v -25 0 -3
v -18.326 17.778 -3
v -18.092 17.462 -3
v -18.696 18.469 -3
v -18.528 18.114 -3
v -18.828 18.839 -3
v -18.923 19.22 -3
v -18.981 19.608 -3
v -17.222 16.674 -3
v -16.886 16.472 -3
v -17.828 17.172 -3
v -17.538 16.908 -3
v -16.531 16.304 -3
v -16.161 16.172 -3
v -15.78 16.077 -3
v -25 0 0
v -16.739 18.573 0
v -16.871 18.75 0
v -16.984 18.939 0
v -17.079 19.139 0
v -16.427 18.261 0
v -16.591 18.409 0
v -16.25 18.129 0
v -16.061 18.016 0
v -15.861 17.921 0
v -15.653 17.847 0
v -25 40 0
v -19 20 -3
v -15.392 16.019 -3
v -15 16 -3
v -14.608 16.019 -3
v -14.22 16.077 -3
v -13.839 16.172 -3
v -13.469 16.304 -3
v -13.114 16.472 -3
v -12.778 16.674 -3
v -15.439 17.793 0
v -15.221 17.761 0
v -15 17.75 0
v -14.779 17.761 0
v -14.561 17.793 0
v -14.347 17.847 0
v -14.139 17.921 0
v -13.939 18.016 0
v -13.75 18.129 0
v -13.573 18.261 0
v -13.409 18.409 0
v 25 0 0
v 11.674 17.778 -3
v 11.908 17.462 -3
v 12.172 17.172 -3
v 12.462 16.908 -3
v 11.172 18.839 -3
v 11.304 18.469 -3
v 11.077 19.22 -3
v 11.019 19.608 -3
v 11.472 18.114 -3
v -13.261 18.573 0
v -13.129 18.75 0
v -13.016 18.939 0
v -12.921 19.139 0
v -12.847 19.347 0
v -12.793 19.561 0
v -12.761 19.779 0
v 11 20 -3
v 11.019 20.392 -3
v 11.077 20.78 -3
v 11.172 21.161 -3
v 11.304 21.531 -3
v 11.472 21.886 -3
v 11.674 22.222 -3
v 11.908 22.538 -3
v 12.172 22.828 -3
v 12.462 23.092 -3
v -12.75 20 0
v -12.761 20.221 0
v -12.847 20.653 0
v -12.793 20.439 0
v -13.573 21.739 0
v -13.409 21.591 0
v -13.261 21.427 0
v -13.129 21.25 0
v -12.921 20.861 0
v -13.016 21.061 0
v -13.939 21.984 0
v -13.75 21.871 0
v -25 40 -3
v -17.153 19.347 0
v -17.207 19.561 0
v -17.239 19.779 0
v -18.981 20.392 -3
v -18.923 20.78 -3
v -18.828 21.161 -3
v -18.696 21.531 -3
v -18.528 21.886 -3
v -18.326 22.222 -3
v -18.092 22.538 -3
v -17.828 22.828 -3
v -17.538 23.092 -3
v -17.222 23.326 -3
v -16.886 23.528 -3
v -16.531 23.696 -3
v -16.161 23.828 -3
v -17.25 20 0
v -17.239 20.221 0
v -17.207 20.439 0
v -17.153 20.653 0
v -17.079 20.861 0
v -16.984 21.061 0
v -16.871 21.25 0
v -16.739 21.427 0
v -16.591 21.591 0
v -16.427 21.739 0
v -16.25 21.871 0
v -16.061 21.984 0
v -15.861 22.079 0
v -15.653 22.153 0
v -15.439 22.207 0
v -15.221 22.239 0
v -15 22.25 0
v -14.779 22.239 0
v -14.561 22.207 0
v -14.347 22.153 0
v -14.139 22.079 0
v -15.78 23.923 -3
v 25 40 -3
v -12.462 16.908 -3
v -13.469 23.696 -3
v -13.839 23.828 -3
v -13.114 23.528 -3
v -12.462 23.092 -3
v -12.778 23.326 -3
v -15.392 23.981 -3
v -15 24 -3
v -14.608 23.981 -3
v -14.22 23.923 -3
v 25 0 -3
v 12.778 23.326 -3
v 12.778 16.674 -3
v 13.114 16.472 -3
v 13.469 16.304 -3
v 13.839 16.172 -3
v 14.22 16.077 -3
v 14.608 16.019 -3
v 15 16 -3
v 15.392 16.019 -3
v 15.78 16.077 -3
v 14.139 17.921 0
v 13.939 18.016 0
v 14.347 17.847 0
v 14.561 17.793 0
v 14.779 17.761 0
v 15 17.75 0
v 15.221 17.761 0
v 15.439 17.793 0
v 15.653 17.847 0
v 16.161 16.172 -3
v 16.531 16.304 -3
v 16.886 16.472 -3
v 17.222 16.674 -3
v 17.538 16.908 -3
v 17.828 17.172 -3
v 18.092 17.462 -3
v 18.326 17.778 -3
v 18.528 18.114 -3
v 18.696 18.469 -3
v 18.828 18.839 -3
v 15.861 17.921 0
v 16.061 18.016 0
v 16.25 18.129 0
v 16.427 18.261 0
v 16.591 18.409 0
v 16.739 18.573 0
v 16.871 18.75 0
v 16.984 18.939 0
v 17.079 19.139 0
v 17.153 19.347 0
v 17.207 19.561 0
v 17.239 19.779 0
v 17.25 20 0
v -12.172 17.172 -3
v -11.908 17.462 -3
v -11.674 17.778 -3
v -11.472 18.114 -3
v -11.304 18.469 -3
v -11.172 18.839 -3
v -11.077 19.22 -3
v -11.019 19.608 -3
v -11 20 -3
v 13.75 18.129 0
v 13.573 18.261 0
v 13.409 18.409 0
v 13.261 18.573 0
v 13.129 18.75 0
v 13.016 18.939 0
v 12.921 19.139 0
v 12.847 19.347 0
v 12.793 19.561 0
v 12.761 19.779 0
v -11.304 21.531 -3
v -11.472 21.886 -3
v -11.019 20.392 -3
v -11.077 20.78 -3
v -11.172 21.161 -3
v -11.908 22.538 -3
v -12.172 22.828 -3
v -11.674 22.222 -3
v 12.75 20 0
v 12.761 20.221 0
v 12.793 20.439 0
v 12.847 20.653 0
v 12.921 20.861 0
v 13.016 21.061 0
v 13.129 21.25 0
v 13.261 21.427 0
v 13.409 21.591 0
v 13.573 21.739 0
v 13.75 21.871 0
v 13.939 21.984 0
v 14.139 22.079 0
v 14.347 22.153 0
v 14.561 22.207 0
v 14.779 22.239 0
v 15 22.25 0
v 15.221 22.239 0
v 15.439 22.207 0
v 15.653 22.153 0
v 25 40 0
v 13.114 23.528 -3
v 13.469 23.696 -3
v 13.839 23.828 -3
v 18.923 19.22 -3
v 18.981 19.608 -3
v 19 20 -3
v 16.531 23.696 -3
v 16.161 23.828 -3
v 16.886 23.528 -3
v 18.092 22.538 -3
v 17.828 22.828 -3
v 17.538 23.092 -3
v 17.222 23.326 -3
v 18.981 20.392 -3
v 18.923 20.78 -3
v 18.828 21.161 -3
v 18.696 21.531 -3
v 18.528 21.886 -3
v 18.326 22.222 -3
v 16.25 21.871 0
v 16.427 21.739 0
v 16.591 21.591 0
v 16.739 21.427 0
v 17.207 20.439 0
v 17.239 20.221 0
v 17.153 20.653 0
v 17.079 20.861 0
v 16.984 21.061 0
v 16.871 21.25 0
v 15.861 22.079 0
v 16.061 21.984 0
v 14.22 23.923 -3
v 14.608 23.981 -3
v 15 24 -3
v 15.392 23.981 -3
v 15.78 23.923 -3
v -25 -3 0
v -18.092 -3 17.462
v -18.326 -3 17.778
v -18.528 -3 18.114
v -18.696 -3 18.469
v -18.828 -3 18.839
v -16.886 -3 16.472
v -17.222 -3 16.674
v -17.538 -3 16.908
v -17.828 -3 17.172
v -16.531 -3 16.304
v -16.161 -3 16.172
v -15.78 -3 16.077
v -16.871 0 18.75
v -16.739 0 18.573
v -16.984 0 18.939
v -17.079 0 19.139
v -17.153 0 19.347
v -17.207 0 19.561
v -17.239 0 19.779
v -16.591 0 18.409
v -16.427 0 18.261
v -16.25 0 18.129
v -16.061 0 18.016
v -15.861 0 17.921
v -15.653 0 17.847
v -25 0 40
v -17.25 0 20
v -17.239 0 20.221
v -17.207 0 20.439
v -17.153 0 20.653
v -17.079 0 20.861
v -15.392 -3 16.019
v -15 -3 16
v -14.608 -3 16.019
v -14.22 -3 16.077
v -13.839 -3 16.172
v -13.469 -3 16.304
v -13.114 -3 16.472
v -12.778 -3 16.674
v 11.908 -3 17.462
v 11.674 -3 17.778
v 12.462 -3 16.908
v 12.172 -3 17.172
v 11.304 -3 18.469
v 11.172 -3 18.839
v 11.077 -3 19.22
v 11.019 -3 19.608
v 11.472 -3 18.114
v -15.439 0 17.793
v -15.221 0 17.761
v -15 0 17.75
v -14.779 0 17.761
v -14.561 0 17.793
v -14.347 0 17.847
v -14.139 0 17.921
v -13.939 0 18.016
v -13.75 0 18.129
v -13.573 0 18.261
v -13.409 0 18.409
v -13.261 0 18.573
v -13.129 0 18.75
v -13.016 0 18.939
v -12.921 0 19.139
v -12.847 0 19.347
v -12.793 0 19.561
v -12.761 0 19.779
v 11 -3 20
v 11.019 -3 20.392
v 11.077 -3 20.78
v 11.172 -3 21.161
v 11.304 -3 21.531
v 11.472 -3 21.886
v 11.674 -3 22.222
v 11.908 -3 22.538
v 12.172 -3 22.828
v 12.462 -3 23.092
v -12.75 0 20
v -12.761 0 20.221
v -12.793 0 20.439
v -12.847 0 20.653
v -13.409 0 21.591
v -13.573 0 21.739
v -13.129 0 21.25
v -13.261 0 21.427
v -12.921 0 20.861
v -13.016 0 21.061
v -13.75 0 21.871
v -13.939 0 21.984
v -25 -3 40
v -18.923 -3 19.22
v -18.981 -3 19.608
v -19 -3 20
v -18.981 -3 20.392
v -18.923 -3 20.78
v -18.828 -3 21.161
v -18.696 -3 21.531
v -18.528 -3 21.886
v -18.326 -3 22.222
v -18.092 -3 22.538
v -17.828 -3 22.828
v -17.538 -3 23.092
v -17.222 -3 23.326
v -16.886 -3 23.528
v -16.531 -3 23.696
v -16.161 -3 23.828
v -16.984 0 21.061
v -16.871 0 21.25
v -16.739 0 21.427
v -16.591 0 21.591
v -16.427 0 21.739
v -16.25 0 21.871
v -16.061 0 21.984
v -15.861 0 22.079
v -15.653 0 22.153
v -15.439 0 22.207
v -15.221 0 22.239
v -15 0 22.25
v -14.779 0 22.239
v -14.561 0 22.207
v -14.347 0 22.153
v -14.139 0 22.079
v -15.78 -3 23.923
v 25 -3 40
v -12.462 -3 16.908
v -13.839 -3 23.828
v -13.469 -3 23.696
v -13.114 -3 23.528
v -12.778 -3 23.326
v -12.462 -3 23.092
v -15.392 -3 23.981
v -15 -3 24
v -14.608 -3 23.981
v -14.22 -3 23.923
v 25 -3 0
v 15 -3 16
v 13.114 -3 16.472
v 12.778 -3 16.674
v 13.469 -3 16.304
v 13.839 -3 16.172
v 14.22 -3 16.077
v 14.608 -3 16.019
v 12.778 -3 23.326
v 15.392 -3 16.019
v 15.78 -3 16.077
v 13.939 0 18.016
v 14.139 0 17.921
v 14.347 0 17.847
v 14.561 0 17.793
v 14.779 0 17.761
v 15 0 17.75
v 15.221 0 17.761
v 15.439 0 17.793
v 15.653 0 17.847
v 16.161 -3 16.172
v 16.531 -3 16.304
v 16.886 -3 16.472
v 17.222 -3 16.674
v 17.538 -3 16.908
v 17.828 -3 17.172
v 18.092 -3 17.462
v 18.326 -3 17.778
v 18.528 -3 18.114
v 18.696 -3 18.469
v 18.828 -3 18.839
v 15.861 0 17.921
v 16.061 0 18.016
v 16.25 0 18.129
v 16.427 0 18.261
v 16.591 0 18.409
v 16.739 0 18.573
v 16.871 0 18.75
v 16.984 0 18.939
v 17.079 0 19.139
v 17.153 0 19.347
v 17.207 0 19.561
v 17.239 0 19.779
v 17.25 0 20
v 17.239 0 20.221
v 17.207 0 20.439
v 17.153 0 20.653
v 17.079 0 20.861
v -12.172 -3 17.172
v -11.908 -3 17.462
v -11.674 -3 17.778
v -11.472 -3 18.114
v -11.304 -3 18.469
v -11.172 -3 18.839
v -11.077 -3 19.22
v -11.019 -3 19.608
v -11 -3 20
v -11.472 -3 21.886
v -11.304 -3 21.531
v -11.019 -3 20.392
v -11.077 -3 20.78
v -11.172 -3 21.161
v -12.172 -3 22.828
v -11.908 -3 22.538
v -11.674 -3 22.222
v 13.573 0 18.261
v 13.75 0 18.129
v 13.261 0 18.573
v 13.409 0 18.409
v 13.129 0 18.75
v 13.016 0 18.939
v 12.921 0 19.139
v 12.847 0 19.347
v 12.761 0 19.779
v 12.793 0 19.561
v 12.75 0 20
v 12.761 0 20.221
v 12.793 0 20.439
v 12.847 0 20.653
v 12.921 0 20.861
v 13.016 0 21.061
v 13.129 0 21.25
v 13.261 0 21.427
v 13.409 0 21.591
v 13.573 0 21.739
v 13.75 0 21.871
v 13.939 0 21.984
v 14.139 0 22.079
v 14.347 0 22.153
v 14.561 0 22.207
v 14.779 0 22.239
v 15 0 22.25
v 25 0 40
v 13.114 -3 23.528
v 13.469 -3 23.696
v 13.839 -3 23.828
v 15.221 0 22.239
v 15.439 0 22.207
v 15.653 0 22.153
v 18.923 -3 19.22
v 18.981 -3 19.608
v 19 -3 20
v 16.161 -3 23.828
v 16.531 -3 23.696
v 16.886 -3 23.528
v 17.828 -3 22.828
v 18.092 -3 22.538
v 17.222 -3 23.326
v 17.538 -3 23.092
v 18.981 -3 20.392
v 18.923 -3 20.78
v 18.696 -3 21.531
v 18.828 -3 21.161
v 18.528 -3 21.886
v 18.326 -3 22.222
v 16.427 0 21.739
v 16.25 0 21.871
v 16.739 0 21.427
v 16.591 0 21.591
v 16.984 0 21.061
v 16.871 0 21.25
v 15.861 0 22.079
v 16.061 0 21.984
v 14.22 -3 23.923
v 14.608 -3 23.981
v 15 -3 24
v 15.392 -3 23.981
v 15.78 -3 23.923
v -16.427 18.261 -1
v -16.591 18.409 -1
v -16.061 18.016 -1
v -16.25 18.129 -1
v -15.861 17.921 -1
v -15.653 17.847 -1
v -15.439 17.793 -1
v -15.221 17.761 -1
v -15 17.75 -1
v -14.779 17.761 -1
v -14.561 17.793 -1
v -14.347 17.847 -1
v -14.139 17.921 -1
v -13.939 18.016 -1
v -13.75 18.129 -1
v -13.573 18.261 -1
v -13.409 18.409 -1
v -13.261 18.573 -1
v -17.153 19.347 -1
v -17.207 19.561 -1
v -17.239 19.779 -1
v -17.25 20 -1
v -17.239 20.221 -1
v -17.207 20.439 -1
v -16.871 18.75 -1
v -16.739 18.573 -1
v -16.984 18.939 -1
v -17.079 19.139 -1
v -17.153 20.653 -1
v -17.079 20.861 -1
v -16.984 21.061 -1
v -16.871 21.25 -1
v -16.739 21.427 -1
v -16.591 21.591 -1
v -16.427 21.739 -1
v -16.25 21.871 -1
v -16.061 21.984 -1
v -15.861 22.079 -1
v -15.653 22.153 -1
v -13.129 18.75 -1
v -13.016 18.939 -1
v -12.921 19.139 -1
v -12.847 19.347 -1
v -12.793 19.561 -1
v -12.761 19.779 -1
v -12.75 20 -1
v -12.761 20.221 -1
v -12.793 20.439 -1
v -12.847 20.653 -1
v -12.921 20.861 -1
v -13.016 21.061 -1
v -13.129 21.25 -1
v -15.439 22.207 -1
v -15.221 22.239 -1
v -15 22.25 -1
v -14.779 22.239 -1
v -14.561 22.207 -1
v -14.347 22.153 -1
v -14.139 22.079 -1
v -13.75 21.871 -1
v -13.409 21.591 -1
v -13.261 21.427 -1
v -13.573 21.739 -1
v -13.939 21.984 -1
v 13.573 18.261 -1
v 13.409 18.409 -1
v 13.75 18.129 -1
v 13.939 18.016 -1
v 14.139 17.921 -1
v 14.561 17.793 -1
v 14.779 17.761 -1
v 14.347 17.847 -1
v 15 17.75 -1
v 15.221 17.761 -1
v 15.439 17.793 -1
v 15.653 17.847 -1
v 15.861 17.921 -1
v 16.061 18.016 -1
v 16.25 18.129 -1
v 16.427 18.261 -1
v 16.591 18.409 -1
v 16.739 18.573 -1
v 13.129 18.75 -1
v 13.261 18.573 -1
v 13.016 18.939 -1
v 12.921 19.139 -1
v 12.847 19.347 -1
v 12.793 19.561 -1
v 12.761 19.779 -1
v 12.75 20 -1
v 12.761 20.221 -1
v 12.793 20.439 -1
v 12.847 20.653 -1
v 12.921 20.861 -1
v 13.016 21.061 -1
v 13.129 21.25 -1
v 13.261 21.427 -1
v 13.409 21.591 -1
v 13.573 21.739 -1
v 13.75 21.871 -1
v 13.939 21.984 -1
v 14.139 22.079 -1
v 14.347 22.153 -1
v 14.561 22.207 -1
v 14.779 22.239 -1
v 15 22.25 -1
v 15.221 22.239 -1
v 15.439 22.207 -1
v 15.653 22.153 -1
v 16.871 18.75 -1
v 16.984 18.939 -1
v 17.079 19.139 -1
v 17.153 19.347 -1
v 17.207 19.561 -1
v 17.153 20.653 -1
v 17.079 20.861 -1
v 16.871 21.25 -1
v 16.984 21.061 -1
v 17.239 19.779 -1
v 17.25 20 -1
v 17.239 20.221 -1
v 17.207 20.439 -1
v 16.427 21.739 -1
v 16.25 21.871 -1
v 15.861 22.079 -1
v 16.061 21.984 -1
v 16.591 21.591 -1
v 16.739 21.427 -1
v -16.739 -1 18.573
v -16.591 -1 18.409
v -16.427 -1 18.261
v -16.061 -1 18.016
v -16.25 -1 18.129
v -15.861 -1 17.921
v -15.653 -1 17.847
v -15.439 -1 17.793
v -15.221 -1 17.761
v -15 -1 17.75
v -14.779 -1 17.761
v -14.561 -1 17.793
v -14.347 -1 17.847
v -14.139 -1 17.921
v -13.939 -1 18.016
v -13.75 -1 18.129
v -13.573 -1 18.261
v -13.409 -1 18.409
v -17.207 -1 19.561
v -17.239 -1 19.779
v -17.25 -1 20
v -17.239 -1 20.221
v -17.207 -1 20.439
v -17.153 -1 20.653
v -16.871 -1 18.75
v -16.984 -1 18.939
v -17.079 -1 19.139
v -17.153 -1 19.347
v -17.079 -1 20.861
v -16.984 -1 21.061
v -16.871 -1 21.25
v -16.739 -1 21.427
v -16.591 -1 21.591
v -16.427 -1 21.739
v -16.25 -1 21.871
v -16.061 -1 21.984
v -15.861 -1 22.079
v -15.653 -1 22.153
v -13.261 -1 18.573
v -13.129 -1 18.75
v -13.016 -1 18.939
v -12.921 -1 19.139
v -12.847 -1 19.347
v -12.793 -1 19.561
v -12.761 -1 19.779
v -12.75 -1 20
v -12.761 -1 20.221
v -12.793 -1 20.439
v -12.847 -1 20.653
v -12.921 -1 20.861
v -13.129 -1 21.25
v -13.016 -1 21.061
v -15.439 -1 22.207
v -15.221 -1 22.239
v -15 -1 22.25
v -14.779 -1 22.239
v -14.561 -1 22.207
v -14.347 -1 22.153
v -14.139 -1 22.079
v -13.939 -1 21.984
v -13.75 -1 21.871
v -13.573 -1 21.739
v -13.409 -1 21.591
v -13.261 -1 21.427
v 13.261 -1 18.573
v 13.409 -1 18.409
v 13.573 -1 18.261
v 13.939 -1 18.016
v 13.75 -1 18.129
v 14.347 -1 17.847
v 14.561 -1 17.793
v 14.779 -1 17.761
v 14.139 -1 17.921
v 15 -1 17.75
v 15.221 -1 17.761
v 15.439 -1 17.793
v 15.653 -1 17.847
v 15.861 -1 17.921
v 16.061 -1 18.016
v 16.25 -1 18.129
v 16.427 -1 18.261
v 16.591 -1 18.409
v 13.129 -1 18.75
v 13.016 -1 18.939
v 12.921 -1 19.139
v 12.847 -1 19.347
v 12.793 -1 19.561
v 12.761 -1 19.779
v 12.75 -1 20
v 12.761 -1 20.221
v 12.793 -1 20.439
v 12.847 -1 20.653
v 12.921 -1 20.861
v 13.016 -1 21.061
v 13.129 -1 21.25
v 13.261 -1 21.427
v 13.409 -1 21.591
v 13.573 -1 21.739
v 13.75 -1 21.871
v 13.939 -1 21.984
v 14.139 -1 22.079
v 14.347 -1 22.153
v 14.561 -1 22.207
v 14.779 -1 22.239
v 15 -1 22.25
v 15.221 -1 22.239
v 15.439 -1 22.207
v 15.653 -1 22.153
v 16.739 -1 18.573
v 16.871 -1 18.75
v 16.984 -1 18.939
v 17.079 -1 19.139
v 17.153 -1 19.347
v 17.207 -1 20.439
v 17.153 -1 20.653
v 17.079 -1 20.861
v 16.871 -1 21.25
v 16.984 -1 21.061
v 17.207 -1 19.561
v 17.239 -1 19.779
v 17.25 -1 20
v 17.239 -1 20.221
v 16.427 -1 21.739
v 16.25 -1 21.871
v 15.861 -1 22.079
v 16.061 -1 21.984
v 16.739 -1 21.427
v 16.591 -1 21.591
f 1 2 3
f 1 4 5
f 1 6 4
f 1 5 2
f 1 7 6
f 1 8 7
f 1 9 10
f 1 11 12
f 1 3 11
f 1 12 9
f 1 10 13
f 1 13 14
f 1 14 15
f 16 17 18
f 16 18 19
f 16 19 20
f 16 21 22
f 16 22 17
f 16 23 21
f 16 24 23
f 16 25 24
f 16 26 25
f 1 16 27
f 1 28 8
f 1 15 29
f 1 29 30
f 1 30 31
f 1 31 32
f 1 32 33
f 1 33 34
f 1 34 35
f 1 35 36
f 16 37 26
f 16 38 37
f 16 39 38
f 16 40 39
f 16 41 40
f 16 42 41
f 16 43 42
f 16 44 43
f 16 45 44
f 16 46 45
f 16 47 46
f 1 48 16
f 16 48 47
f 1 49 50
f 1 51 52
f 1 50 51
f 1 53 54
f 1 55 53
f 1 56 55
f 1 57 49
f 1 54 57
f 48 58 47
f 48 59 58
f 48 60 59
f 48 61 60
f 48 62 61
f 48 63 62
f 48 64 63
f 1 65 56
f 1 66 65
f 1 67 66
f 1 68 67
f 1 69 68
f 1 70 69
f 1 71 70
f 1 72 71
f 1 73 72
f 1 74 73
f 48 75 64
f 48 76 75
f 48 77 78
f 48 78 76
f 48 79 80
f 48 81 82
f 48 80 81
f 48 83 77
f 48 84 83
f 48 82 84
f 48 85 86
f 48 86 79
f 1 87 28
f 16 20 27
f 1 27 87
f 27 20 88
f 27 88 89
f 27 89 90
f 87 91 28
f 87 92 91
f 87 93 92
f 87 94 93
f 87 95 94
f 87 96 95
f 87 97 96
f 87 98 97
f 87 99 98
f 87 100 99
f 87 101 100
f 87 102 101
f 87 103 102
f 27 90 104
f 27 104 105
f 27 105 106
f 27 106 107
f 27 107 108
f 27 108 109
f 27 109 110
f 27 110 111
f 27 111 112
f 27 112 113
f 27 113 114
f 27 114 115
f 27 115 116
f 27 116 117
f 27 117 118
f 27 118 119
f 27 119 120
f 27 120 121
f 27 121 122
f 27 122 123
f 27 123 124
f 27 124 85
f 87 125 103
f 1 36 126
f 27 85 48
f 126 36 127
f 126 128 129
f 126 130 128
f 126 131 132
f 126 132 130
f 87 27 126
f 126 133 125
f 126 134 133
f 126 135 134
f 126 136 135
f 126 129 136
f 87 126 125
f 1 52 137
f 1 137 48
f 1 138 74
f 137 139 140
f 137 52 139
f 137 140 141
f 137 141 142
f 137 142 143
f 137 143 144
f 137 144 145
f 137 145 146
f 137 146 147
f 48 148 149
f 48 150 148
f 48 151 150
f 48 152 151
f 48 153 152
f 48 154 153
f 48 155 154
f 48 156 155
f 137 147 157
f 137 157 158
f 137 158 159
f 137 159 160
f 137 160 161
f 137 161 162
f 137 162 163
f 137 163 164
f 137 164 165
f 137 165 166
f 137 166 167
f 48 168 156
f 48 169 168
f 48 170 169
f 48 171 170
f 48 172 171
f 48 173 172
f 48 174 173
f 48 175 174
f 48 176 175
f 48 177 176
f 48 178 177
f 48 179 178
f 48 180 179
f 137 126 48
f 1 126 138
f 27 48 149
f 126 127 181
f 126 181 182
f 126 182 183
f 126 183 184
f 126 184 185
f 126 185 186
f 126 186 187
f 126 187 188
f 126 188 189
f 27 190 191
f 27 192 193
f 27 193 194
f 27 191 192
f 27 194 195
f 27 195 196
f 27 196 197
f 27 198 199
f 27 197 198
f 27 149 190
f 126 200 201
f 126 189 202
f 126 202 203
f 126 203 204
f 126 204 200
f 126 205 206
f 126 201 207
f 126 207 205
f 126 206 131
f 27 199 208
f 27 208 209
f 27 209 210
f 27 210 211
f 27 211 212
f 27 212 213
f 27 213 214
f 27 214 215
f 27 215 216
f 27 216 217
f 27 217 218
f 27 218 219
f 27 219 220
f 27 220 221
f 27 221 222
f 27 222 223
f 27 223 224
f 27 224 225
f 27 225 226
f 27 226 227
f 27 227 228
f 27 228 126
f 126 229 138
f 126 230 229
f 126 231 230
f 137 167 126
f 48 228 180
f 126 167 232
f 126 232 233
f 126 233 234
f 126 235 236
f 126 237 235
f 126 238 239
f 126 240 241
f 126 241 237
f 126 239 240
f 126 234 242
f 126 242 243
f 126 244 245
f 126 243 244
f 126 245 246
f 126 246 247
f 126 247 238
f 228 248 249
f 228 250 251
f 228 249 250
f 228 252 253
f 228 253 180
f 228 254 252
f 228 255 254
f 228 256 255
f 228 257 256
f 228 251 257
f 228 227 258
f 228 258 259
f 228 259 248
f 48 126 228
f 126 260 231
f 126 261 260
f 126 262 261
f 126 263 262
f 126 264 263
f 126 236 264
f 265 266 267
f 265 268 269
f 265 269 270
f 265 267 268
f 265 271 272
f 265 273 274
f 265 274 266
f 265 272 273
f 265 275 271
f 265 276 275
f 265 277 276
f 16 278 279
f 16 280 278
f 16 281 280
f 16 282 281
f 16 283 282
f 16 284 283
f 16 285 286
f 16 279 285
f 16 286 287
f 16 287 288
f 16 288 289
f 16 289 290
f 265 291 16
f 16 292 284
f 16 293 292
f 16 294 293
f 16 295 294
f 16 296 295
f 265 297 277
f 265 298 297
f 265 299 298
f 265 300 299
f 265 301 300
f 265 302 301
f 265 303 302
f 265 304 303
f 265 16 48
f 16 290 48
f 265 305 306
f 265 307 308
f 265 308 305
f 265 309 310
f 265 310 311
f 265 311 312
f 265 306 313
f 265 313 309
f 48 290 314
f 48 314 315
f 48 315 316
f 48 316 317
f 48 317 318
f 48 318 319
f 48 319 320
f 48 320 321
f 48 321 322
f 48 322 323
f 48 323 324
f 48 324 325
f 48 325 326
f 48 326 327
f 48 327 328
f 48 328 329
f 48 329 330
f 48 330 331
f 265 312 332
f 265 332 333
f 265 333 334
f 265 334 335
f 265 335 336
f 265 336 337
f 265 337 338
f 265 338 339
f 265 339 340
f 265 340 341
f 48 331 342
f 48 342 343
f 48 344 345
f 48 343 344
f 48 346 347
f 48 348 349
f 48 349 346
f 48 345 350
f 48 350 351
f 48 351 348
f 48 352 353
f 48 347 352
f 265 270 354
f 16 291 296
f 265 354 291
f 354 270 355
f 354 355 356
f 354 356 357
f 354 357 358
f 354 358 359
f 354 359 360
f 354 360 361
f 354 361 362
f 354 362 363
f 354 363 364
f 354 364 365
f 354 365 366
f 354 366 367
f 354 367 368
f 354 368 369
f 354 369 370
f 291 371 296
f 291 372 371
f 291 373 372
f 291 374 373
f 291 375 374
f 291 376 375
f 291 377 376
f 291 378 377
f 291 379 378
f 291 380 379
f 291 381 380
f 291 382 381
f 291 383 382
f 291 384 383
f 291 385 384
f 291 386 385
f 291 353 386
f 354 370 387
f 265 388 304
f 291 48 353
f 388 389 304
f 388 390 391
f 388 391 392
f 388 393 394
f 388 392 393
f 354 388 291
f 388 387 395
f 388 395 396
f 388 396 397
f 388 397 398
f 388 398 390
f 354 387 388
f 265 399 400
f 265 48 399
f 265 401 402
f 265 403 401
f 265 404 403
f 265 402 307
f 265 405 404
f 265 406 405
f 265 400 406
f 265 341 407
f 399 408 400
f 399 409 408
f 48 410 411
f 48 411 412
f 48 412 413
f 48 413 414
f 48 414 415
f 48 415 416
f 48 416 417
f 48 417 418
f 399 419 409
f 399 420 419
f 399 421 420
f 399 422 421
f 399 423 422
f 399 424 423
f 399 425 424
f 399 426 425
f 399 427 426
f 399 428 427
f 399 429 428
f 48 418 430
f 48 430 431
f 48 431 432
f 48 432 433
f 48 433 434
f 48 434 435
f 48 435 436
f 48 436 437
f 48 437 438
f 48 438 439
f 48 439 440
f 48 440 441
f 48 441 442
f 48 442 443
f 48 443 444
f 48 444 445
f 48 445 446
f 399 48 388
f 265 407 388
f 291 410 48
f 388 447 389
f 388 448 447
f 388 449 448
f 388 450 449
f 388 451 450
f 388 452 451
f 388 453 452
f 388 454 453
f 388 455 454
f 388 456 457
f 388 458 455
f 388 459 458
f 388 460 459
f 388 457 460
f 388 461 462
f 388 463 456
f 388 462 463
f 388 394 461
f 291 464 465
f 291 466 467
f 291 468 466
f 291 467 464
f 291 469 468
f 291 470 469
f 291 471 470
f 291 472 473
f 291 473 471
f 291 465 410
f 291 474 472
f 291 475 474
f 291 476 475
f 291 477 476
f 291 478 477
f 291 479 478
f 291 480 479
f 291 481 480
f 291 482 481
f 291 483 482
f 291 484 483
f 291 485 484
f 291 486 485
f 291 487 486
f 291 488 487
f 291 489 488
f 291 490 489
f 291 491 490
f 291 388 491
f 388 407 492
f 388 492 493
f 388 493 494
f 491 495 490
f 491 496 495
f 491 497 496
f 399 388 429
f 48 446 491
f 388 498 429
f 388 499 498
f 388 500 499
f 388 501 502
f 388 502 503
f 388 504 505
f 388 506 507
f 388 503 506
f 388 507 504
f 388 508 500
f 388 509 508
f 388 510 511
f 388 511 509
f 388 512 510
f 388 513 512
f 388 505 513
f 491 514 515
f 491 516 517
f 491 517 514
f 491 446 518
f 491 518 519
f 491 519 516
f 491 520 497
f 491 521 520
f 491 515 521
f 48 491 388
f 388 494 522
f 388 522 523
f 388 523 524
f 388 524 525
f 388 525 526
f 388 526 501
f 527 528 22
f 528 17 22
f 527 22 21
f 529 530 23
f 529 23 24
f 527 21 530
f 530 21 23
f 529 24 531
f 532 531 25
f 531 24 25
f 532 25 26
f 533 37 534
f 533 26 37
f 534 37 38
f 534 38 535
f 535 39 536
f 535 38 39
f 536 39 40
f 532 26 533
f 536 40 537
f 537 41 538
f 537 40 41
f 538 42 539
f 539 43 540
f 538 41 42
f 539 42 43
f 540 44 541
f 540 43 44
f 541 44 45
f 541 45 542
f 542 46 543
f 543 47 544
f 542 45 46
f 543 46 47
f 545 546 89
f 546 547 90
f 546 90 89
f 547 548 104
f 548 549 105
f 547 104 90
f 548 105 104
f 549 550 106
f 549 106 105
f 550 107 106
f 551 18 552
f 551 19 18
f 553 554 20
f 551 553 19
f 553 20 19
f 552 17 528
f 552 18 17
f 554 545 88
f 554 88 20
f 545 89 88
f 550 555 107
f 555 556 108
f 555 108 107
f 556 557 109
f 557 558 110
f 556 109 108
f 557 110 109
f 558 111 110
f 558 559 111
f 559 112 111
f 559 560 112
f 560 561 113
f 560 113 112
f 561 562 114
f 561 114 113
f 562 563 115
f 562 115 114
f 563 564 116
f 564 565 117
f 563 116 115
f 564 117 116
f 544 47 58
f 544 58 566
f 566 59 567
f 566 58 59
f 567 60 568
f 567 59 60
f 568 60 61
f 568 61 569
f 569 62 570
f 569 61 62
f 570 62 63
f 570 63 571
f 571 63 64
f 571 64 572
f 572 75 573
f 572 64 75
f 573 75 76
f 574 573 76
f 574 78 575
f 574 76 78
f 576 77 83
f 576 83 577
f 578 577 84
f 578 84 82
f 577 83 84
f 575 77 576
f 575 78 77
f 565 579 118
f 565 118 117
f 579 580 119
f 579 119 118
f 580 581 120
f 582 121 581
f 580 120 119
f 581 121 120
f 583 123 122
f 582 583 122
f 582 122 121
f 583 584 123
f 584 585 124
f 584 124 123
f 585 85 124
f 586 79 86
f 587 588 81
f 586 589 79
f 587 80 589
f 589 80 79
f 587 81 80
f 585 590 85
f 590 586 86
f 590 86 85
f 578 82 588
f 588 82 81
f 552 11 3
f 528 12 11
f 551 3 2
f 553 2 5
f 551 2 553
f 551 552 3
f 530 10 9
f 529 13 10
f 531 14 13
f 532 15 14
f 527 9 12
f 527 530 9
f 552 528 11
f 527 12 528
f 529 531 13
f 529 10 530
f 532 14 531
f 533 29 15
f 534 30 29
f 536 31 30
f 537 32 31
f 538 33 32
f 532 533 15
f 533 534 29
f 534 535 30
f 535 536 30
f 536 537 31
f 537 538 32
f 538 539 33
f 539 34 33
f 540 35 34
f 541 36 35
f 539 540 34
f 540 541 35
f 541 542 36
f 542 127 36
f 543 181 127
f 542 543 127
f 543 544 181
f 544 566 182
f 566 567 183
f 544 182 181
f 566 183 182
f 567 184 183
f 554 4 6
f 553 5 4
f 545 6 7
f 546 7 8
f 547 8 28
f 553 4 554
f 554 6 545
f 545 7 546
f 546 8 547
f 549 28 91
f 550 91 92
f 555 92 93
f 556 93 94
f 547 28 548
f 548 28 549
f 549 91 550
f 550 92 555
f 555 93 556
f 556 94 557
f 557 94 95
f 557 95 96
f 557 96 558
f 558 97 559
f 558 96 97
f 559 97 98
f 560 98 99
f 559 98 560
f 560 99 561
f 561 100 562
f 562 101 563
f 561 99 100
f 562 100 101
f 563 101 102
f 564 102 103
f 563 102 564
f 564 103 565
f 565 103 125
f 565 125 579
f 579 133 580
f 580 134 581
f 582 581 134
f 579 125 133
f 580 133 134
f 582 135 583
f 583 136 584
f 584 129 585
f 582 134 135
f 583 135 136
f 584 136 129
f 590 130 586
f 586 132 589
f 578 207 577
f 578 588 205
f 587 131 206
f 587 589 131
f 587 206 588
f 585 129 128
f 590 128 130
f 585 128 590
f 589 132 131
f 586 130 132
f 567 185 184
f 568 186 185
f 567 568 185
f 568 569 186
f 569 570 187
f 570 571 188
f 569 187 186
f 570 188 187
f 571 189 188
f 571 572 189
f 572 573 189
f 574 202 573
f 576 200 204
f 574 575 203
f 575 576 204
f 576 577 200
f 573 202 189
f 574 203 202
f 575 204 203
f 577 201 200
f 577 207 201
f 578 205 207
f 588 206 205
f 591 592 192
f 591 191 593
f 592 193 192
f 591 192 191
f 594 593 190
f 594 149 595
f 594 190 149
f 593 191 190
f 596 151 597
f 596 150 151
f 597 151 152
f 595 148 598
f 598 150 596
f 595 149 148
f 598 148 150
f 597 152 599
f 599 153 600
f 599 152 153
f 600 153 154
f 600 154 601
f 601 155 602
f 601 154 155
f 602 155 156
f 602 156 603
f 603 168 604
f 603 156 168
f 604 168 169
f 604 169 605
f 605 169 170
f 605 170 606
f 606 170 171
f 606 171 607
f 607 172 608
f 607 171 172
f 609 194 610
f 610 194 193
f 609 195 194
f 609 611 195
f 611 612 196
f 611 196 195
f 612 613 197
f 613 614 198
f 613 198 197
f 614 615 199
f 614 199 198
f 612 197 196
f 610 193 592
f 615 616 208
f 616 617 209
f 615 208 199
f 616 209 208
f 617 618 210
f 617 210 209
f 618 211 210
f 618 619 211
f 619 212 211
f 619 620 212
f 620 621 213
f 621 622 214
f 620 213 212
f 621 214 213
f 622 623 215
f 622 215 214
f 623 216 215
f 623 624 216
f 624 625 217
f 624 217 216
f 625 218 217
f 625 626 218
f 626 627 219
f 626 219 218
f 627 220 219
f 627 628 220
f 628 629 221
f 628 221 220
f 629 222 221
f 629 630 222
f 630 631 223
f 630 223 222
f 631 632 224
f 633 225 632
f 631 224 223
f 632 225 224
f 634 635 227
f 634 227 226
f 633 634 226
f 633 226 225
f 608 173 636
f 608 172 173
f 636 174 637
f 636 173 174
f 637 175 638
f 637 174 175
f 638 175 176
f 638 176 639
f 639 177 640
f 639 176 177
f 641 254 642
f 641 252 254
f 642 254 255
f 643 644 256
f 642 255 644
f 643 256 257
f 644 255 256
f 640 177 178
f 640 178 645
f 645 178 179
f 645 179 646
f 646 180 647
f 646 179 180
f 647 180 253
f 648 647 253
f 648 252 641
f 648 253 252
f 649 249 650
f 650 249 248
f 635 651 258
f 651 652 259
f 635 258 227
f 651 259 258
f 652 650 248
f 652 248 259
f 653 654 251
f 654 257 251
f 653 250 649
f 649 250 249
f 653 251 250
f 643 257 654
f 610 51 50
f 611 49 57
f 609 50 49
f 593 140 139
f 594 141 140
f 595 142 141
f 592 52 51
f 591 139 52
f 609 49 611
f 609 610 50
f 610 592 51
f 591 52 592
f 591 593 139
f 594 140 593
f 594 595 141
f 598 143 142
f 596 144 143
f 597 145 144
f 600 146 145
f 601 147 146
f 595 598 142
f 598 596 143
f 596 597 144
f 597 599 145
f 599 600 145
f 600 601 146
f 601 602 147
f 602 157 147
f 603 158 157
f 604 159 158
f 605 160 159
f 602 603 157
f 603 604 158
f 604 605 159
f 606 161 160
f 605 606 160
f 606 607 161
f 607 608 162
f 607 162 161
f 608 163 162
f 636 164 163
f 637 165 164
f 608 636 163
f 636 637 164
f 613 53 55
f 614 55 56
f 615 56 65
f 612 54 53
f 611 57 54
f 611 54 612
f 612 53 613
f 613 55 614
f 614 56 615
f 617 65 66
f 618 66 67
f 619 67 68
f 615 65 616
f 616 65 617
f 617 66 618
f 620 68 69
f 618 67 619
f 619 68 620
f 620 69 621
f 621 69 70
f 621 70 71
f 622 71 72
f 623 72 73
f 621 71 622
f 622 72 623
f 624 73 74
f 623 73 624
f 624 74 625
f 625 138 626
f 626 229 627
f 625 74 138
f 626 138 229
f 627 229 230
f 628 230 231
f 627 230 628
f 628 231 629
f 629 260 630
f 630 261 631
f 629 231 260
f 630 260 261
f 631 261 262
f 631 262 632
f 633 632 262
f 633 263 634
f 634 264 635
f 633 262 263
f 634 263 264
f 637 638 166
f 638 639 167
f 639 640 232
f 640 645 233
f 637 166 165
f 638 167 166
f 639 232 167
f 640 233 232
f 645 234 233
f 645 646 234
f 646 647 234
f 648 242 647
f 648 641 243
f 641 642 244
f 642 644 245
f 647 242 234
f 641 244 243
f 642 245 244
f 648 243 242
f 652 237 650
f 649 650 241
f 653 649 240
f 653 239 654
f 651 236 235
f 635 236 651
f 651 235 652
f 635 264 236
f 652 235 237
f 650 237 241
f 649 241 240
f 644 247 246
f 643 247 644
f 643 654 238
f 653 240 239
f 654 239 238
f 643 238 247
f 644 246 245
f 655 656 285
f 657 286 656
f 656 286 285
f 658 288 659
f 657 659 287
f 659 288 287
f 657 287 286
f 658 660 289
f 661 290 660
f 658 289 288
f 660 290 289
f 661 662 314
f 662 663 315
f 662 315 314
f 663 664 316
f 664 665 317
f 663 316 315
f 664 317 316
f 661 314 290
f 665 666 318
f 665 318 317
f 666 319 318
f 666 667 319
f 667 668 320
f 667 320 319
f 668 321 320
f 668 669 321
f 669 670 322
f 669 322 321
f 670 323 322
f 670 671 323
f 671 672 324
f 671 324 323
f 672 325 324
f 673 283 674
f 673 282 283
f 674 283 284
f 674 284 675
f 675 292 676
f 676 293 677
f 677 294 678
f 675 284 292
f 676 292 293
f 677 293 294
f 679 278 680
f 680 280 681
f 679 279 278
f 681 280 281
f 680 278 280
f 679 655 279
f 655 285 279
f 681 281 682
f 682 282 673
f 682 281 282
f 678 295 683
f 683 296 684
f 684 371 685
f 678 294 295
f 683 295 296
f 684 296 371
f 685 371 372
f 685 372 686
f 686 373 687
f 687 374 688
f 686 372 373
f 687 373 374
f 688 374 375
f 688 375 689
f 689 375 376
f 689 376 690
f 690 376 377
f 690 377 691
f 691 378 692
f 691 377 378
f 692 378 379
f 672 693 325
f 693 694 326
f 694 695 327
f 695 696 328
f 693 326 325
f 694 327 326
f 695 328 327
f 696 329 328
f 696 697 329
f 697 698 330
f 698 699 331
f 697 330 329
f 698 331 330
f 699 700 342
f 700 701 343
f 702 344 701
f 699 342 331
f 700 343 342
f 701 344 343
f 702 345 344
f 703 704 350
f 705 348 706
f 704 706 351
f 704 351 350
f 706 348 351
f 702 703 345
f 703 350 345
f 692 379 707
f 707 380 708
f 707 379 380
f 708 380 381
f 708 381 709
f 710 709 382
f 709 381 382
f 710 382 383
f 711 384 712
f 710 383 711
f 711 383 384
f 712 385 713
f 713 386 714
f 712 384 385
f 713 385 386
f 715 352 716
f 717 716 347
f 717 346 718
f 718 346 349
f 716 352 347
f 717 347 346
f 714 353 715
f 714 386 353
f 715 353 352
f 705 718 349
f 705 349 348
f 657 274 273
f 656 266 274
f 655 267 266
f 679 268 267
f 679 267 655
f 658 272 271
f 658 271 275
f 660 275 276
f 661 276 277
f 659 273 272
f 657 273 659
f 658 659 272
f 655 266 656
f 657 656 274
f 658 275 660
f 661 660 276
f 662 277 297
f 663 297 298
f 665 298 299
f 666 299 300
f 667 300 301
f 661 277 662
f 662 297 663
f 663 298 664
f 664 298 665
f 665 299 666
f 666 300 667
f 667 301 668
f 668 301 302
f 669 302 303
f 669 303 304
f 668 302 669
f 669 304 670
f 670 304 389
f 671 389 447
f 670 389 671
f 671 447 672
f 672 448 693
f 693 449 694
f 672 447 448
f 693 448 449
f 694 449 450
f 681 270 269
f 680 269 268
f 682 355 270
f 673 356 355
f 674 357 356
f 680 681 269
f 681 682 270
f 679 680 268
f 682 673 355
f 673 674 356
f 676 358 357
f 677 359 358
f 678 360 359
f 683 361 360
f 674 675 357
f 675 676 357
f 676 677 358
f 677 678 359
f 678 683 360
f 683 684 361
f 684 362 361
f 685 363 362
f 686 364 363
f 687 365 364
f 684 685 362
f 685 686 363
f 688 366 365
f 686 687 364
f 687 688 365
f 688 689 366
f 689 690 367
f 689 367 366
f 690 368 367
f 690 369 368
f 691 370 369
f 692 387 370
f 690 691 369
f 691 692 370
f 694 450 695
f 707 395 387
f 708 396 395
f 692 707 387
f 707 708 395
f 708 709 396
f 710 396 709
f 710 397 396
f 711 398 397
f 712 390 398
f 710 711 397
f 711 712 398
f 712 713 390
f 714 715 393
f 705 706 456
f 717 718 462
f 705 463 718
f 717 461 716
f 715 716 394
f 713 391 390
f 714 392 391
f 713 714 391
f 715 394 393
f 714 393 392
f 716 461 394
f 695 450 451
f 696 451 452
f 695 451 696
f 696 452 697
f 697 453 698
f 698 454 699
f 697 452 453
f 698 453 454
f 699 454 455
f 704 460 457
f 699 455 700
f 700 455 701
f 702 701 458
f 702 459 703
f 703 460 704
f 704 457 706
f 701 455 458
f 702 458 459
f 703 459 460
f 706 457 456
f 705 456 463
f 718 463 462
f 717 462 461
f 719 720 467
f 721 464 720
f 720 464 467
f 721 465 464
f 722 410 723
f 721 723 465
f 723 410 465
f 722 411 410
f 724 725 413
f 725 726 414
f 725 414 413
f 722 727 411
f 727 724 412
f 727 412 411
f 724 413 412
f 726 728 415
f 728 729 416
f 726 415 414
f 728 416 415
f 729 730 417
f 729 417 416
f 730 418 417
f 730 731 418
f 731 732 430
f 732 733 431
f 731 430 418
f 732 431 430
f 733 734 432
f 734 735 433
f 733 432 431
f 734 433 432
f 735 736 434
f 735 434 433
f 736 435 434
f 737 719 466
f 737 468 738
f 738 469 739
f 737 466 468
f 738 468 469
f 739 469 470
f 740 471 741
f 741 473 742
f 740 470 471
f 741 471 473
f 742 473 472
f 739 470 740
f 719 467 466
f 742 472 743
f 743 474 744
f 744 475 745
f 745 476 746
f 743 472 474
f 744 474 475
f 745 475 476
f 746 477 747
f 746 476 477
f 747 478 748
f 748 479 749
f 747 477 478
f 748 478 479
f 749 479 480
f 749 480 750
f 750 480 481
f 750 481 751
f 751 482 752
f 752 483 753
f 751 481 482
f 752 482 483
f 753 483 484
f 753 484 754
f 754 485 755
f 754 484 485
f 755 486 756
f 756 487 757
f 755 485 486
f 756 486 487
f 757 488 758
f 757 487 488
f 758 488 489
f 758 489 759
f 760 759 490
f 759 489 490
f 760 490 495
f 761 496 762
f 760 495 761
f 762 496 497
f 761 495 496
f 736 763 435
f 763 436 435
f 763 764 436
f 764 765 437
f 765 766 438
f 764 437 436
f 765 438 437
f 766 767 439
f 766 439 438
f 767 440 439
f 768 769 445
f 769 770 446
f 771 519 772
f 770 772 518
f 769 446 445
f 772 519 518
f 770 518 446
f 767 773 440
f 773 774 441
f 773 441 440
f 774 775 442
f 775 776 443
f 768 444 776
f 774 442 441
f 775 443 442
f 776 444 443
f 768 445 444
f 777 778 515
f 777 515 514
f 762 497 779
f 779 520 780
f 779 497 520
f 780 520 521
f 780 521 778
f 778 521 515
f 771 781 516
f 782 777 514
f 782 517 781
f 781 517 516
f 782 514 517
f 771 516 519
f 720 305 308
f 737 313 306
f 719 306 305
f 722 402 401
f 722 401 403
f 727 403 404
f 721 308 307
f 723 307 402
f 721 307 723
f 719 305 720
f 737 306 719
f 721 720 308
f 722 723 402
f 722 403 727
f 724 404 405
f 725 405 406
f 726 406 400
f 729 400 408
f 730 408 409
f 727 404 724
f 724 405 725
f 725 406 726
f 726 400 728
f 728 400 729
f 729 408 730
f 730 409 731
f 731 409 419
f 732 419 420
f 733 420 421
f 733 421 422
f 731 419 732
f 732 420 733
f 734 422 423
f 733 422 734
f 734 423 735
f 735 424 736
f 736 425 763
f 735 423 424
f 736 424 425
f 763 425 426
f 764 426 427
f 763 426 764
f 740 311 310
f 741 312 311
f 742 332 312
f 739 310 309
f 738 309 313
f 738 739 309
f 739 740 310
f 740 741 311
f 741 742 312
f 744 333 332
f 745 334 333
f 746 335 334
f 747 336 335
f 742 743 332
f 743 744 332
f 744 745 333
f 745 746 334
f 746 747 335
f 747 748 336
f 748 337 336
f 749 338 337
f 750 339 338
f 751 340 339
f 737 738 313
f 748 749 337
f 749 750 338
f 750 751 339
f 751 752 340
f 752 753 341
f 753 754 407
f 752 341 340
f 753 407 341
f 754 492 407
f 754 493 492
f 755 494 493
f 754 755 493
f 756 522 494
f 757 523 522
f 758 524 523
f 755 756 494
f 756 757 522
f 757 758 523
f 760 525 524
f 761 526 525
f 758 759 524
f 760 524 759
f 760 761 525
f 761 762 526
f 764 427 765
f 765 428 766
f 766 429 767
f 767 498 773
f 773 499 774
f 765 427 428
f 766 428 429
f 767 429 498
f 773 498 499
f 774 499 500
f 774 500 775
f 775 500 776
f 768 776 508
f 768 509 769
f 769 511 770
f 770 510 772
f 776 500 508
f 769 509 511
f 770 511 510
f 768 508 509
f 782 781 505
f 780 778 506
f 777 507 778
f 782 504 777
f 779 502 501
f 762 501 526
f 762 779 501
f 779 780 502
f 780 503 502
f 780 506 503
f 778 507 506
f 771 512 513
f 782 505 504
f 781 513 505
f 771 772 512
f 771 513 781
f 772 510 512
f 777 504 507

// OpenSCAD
$fn = 64;

// 寸法
width     = 50;
flangeLen = 40;
thickness = 3;

// 穴寸法
through_d = 4.5;
csk_d     = 8;
csk_depth = 2;

// 穴位置
hole_x = width / 2 - 10;
hole_y = flangeLen / 2;
hole_z = flangeLen / 2;

module horizontal_hole(x, y) {
    // 貫通穴
    translate([x, y, -thickness - 1])
        cylinder(h = thickness + 2, d = through_d);

    // 外側（下面）からの皿穴
    translate([x, y, -thickness])
        cylinder(h = csk_depth, d1 = csk_d, d2 = through_d);
}

module vertical_hole(x, z) {
    // 貫通穴
    translate([x, 1, z])
        rotate([90, 0, 0])
            cylinder(h = thickness + 2, d = through_d);

    // 外側（-Y側）からの皿穴
    translate([x, -1, z])
        rotate([90, 0, 0])
            cylinder(h = csk_depth, d1 = through_d, d2 = csk_d);
}

difference() {
    union() {
        // 水平フランジ：内側面 Z=0、+Y方向へ伸長
        translate([-width / 2, 0, -thickness])
            cube([width, flangeLen, thickness]);

        // 垂直フランジ：内側面 Y=0、+Z方向へ伸長
        translate([-width / 2, -thickness, 0])
            cube([width, thickness, flangeLen]);
    }

    // 水平面の穴
    horizontal_hole(-hole_x, hole_y);
    horizontal_hole( hole_x, hole_y);

    // 垂直面の穴
    vertical_hole(-hole_x, hole_z);
    vertical_hole( hole_x, hole_z);
}
